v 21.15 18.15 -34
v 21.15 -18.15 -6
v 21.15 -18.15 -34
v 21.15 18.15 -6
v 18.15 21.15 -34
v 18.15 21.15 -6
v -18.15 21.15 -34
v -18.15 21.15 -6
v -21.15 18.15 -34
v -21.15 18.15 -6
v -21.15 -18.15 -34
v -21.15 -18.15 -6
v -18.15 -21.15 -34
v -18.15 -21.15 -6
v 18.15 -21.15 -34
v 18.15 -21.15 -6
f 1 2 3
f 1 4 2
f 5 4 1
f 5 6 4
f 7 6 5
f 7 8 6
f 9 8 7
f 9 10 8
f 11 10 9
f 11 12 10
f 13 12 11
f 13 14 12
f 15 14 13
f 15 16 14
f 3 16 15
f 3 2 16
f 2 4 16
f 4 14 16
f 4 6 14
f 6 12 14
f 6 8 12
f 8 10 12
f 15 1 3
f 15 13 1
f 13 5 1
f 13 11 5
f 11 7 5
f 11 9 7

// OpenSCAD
// file: C:/gh/oomlout_oobb_part_motor_gearbox_wave_drive_version_5/parts/oobb_part_motor_gearbox_wave_drive_version_5_12_to_1_reduction/nema17_reference.scad
// Visual reference matching the previous cycloidal project's 40 mm motor envelope.
// Face is Z=0; motor body extends towards -Z and shaft towards +Z.
// End caps, corner chamfers and connector are illustrative external details.
// This is purchased reference hardware, never a printable gearbox component.
module nema17_outline(width=42.3,depth=6,chamfer=3) {
    w=width/2;
    linear_extrude(depth) polygon([
        [-w+chamfer,-w],[w-chamfer,-w],[w,-w+chamfer],[w,w-chamfer],
        [w-chamfer,w],[-w+chamfer,w],[-w,w-chamfer],[-w,-w+chamfer]
    ]);
}
module nema17_front() {
    difference() {
        translate([0,0,-motor_cap_depth])
            nema17_outline(motor_body_width,motor_cap_depth,motor_corner_chamfer);
        for(x=[-motor_hole_pitch/2,motor_hole_pitch/2],y=[-motor_hole_pitch/2,motor_hole_pitch/2])
            translate([x,y,-motor_thread_depth]) cylinder(d=3,h=motor_thread_depth+0.01);
        translate([0,0,-motor_cap_depth-0.01]) cylinder(d=motor_shaft_diameter,h=motor_cap_depth+0.02);
    }
}
module nema17_stator() {
    translate([0,0,-motor_body_depth+motor_cap_depth])
        nema17_outline(motor_body_width,motor_body_depth-2*motor_cap_depth,motor_corner_chamfer);
}
module nema17_rear() {
    difference() {
        translate([0,0,-motor_body_depth])
            nema17_outline(motor_body_width,motor_cap_depth,motor_corner_chamfer);
        for(x=[-motor_hole_pitch/2,motor_hole_pitch/2],y=[-motor_hole_pitch/2,motor_hole_pitch/2])
            translate([x,y,-motor_body_depth-0.01]) cylinder(d=4.5,h=1.2);
    }
}
module nema17_pilot() {
    difference() {
        cylinder(d=motor_pilot_diameter,h=motor_pilot_height);
        translate([0,0,-0.01]) cylinder(d=motor_shaft_diameter,h=motor_pilot_height+0.02);
    }
}
module nema17_shaft() {
    linear_extrude(motor_shaft_length) intersection() {
        circle(d=motor_shaft_diameter);
        translate([-10,-10]) square([10+motor_shaft_diameter/2-motor_shaft_flat_depth,20]);
    }
}
module nema17_connector() {
    // Indicative connector envelope; actual cable exit depends on motor model.
    translate([-7,motor_body_width/2-1,-motor_body_depth+motor_cap_depth])
        cube([14,5,7]);
}
module nema17_reference() {
    color("Silver") { nema17_front(); nema17_rear(); nema17_pilot(); nema17_shaft(); }
    color([0.08,0.08,0.08]) nema17_stator();
    color([0.2,0.2,0.2]) nema17_connector();
}
// file: C:/gh/oomlout_oobb_part_motor_gearbox_wave_drive_version_5/parts/oobb_part_motor_gearbox_wave_drive_version_5_12_to_1_reduction/motor_reference_parameters.scad
// Purchased motor envelope. Recipe defines body, shaft and mounting dimensions.
motor_body_depth = 40.0;
motor_shaft_length = 24.0;
motor_hole_pitch = 31.0;
motor_thread_depth = 6.0;
motor_pilot_diameter = 22.0;
motor_pilot_height = 2.0;
motor_shaft_end_clearance = 0.5;
motor_thread_engagement = 5.2;
motor_shaft_diameter = 5.0;
motor_body_width = 42.3;
motor_cap_depth = 6.0;
motor_corner_chamfer = 3.0;
motor_shaft_flat_depth = 0.5;
motor_face_z = 0.0;
// main file
include <C:/gh/oomlout_oobb_part_motor_gearbox_wave_drive_version_5/parts/oobb_part_motor_gearbox_wave_drive_version_5_12_to_1_reduction/motor_reference_parameters.scad>
include <C:/gh/oomlout_oobb_part_motor_gearbox_wave_drive_version_5/parts/oobb_part_motor_gearbox_wave_drive_version_5_12_to_1_reduction/nema17_reference.scad>
$fn=120;
nema17_stator();
